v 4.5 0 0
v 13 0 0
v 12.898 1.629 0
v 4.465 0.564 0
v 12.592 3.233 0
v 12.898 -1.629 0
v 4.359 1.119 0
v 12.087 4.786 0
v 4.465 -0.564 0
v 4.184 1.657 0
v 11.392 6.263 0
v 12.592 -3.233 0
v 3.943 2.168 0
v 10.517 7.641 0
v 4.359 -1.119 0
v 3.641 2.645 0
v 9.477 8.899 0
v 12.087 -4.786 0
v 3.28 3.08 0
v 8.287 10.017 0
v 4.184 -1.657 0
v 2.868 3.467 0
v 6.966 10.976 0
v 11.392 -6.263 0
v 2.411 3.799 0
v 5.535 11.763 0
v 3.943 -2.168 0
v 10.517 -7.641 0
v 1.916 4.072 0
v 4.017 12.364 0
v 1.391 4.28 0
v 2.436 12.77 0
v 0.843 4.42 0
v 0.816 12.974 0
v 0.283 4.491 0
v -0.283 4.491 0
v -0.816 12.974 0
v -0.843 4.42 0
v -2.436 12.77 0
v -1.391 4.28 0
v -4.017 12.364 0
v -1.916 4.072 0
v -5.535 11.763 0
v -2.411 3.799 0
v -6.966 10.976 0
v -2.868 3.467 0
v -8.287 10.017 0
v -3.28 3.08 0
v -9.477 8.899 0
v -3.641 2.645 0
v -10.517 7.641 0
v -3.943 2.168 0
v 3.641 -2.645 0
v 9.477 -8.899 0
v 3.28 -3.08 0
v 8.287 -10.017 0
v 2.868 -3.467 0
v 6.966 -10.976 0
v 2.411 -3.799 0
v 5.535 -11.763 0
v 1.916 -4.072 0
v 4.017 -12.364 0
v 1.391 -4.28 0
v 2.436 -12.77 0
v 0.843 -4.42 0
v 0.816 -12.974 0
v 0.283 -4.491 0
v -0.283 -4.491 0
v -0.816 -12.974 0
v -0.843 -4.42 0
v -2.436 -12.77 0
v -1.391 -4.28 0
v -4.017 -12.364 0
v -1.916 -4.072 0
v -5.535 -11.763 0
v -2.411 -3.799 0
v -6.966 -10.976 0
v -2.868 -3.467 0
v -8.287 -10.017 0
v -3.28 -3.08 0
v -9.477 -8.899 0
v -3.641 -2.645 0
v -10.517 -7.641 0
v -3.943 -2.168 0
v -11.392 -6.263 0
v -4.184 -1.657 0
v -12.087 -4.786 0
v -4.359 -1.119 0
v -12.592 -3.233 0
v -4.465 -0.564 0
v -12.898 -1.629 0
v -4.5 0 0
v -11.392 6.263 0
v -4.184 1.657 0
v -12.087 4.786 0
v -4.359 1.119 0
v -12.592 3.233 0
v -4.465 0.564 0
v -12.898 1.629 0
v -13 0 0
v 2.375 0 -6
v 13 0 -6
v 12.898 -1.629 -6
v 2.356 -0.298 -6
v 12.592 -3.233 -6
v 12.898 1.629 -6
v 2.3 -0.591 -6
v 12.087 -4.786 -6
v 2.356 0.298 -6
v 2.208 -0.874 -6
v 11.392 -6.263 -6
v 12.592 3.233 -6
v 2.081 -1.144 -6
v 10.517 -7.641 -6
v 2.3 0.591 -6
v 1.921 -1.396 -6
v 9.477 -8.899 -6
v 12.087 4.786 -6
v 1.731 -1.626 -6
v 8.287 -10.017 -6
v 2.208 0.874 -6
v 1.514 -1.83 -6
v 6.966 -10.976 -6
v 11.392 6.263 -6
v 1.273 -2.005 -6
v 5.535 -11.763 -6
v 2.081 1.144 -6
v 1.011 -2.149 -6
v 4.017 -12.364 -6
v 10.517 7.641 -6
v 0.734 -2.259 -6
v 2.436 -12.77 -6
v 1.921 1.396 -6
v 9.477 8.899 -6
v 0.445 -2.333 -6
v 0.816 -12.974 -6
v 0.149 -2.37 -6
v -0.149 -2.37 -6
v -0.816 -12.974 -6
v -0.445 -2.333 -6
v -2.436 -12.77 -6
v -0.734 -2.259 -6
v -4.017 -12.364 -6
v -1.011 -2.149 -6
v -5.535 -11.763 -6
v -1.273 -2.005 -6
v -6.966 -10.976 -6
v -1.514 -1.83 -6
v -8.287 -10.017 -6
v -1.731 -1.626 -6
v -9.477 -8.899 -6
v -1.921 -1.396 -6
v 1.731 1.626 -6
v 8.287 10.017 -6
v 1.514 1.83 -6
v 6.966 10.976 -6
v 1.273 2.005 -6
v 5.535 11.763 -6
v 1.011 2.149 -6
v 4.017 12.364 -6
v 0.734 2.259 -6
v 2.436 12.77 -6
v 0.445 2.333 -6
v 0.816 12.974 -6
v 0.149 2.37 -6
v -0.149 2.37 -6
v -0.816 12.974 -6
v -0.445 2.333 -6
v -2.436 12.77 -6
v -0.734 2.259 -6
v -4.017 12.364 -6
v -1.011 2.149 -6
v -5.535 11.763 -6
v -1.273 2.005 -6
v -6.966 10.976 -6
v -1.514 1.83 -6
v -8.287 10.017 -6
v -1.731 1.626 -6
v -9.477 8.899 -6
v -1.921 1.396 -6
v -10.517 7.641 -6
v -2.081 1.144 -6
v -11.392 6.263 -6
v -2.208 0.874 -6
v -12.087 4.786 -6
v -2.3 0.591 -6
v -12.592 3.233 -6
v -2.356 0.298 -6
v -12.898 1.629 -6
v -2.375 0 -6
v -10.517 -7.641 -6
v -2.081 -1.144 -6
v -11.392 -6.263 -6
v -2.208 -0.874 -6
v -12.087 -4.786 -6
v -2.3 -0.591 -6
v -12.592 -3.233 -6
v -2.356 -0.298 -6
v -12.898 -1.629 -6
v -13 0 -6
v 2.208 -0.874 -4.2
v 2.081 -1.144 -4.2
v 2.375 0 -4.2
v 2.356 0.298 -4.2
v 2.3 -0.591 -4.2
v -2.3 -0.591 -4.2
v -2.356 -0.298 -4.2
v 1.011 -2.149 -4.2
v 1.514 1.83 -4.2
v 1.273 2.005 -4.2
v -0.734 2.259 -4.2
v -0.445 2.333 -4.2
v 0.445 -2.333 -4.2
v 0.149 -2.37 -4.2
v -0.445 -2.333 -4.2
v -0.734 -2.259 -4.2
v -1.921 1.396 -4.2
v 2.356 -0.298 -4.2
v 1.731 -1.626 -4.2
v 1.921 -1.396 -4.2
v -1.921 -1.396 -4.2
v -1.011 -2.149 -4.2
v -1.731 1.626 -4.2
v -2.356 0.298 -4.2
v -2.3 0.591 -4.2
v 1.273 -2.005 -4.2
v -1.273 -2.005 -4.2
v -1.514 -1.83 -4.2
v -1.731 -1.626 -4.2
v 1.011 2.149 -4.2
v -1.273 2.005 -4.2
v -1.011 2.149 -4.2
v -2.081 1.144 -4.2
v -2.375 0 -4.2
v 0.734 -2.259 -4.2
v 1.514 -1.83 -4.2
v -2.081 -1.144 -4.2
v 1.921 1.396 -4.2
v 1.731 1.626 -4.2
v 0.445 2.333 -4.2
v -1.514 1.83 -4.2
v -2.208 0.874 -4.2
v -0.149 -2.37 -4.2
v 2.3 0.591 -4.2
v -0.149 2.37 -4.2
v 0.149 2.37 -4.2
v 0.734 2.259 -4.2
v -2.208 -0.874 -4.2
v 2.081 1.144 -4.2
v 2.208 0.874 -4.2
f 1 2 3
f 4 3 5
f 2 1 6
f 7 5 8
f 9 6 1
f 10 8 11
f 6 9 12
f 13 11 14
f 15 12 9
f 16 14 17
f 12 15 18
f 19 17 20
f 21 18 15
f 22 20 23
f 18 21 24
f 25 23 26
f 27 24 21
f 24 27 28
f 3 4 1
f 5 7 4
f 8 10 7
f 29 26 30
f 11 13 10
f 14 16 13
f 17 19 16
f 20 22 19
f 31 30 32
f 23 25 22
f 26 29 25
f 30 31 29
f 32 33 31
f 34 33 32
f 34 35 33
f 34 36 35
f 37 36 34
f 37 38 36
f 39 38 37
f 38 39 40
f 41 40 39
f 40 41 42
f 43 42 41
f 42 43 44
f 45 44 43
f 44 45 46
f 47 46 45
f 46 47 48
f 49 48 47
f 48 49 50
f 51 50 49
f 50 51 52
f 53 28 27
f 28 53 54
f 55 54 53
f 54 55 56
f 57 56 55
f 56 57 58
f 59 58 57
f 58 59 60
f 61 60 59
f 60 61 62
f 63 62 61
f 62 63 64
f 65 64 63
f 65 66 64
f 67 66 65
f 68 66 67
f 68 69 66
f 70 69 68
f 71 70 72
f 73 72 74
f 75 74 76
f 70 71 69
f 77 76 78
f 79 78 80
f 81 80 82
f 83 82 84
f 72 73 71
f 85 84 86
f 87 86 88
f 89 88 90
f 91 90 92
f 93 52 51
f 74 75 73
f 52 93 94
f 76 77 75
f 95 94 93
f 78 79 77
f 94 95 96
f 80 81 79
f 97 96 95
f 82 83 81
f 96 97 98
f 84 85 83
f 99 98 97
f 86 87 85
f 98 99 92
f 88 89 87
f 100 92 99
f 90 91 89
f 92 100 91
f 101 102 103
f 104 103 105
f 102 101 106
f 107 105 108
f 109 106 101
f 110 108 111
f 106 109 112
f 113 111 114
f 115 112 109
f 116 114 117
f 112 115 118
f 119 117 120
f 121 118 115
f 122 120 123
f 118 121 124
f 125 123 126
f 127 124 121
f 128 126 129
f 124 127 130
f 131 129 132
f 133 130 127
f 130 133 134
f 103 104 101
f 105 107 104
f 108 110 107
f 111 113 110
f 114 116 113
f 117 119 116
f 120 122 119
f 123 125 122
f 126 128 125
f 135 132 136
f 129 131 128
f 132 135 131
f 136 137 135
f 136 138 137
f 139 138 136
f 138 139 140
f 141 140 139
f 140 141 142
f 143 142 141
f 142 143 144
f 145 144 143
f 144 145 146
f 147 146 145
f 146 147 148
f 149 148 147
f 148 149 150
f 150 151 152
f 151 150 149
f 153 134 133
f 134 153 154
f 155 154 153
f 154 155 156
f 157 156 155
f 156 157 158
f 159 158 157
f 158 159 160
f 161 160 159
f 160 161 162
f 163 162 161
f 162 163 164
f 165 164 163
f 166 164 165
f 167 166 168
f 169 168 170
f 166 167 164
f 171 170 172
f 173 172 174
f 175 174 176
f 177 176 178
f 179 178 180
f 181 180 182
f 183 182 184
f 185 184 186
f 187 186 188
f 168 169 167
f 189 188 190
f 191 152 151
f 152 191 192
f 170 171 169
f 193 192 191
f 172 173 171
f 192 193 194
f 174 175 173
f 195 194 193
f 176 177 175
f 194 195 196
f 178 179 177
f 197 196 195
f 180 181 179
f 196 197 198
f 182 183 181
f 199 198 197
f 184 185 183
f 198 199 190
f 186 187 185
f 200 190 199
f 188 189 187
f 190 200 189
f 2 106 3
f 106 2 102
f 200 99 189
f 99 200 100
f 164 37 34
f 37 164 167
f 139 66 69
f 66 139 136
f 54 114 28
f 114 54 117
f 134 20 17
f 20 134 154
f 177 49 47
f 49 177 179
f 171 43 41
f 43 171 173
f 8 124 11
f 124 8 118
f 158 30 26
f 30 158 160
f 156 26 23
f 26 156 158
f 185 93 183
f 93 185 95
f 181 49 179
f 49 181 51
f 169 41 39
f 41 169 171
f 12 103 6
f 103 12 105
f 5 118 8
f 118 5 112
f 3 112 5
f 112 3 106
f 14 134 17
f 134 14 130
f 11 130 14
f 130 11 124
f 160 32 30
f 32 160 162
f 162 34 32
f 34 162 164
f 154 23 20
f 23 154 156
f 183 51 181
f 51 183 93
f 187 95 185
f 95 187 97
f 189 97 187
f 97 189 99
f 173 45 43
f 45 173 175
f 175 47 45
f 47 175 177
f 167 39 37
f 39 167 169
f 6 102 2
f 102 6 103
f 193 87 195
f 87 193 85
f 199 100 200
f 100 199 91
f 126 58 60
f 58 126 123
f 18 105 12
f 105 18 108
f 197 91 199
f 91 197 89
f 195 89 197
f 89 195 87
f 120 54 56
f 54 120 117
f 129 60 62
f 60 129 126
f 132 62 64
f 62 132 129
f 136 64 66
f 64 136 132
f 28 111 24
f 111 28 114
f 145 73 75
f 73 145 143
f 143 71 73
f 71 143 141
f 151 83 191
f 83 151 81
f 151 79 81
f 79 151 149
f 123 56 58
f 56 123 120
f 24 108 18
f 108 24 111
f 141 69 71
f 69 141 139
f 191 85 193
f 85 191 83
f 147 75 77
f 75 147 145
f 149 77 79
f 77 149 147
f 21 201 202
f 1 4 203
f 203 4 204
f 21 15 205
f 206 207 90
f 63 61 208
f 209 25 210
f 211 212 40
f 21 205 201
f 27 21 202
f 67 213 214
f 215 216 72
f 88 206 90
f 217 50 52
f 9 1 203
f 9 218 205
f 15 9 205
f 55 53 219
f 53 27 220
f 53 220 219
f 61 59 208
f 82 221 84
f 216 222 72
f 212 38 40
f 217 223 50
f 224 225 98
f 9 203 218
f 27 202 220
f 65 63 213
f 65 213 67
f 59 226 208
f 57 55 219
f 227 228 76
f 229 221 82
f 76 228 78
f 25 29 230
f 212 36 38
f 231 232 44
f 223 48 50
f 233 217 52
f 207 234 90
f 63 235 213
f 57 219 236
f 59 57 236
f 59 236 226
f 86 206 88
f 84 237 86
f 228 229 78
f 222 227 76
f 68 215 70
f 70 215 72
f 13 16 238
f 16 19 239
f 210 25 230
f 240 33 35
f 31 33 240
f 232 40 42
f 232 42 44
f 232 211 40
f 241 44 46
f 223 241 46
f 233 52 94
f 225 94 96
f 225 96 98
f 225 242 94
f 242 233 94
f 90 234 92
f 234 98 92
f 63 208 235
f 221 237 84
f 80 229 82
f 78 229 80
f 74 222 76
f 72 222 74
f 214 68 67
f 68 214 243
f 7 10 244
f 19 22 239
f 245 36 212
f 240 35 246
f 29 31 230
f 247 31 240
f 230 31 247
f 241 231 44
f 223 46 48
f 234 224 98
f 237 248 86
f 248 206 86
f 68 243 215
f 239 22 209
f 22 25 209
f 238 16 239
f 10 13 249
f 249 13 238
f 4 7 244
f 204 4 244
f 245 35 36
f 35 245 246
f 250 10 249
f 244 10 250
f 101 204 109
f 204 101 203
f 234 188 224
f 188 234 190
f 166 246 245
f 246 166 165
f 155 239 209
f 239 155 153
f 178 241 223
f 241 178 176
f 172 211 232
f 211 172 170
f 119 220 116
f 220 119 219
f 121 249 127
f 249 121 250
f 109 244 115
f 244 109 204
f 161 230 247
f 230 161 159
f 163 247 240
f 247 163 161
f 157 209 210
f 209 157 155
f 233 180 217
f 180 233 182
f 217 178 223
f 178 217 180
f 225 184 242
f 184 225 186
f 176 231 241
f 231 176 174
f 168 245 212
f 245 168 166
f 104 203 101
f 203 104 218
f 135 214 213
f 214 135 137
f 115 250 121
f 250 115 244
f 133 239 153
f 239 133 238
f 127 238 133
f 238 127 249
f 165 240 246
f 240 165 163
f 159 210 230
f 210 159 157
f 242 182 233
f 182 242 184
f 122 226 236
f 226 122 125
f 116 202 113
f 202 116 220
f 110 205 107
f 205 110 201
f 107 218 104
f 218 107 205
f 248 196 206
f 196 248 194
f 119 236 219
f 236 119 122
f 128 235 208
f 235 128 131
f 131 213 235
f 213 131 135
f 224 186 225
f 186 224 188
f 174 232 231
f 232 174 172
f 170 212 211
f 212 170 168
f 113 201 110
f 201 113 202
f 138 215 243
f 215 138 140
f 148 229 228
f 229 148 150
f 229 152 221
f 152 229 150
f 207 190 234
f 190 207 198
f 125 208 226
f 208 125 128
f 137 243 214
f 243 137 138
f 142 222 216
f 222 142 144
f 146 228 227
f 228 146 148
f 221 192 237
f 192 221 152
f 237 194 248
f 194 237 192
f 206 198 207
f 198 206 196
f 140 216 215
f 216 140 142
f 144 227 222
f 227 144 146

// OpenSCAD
$fn = 50;


difference() {
	union() {
		translate(v = [0, 0, -6.0000000000]) {
			cylinder(h = 6, r = 7.0000000000);
		}
		translate(v = [0, 0, -6.0000000000]) {
			cylinder(h = 6, r = 13.0000000000);
		}
	}
	union() {
		translate(v = [0, 0, 0]) {
			rotate(a = [0, 0, 0]) {
				difference() {
					union() {
						#translate(v = [0, 0, -6.0000000000]) {
							cylinder(h = 6, r = 2.2500000000);
						}
						#translate(v = [0, 0, -4.2000000000]) {
							cylinder(h = 4.2000000000, r = 7.0000000000, r1 = 2.3750000000, r2 = 4.5000000000);
						}
						#translate(v = [0, 0, -6.0000000000]) {
							cylinder(h = 6, r = 2.3750000000);
						}
						#translate(v = [0, 0, -6.0000000000]) {
							cylinder(h = 6, r = 2.2500000000);
						}
					}
					union();
				}
			}
		}
	}
}
